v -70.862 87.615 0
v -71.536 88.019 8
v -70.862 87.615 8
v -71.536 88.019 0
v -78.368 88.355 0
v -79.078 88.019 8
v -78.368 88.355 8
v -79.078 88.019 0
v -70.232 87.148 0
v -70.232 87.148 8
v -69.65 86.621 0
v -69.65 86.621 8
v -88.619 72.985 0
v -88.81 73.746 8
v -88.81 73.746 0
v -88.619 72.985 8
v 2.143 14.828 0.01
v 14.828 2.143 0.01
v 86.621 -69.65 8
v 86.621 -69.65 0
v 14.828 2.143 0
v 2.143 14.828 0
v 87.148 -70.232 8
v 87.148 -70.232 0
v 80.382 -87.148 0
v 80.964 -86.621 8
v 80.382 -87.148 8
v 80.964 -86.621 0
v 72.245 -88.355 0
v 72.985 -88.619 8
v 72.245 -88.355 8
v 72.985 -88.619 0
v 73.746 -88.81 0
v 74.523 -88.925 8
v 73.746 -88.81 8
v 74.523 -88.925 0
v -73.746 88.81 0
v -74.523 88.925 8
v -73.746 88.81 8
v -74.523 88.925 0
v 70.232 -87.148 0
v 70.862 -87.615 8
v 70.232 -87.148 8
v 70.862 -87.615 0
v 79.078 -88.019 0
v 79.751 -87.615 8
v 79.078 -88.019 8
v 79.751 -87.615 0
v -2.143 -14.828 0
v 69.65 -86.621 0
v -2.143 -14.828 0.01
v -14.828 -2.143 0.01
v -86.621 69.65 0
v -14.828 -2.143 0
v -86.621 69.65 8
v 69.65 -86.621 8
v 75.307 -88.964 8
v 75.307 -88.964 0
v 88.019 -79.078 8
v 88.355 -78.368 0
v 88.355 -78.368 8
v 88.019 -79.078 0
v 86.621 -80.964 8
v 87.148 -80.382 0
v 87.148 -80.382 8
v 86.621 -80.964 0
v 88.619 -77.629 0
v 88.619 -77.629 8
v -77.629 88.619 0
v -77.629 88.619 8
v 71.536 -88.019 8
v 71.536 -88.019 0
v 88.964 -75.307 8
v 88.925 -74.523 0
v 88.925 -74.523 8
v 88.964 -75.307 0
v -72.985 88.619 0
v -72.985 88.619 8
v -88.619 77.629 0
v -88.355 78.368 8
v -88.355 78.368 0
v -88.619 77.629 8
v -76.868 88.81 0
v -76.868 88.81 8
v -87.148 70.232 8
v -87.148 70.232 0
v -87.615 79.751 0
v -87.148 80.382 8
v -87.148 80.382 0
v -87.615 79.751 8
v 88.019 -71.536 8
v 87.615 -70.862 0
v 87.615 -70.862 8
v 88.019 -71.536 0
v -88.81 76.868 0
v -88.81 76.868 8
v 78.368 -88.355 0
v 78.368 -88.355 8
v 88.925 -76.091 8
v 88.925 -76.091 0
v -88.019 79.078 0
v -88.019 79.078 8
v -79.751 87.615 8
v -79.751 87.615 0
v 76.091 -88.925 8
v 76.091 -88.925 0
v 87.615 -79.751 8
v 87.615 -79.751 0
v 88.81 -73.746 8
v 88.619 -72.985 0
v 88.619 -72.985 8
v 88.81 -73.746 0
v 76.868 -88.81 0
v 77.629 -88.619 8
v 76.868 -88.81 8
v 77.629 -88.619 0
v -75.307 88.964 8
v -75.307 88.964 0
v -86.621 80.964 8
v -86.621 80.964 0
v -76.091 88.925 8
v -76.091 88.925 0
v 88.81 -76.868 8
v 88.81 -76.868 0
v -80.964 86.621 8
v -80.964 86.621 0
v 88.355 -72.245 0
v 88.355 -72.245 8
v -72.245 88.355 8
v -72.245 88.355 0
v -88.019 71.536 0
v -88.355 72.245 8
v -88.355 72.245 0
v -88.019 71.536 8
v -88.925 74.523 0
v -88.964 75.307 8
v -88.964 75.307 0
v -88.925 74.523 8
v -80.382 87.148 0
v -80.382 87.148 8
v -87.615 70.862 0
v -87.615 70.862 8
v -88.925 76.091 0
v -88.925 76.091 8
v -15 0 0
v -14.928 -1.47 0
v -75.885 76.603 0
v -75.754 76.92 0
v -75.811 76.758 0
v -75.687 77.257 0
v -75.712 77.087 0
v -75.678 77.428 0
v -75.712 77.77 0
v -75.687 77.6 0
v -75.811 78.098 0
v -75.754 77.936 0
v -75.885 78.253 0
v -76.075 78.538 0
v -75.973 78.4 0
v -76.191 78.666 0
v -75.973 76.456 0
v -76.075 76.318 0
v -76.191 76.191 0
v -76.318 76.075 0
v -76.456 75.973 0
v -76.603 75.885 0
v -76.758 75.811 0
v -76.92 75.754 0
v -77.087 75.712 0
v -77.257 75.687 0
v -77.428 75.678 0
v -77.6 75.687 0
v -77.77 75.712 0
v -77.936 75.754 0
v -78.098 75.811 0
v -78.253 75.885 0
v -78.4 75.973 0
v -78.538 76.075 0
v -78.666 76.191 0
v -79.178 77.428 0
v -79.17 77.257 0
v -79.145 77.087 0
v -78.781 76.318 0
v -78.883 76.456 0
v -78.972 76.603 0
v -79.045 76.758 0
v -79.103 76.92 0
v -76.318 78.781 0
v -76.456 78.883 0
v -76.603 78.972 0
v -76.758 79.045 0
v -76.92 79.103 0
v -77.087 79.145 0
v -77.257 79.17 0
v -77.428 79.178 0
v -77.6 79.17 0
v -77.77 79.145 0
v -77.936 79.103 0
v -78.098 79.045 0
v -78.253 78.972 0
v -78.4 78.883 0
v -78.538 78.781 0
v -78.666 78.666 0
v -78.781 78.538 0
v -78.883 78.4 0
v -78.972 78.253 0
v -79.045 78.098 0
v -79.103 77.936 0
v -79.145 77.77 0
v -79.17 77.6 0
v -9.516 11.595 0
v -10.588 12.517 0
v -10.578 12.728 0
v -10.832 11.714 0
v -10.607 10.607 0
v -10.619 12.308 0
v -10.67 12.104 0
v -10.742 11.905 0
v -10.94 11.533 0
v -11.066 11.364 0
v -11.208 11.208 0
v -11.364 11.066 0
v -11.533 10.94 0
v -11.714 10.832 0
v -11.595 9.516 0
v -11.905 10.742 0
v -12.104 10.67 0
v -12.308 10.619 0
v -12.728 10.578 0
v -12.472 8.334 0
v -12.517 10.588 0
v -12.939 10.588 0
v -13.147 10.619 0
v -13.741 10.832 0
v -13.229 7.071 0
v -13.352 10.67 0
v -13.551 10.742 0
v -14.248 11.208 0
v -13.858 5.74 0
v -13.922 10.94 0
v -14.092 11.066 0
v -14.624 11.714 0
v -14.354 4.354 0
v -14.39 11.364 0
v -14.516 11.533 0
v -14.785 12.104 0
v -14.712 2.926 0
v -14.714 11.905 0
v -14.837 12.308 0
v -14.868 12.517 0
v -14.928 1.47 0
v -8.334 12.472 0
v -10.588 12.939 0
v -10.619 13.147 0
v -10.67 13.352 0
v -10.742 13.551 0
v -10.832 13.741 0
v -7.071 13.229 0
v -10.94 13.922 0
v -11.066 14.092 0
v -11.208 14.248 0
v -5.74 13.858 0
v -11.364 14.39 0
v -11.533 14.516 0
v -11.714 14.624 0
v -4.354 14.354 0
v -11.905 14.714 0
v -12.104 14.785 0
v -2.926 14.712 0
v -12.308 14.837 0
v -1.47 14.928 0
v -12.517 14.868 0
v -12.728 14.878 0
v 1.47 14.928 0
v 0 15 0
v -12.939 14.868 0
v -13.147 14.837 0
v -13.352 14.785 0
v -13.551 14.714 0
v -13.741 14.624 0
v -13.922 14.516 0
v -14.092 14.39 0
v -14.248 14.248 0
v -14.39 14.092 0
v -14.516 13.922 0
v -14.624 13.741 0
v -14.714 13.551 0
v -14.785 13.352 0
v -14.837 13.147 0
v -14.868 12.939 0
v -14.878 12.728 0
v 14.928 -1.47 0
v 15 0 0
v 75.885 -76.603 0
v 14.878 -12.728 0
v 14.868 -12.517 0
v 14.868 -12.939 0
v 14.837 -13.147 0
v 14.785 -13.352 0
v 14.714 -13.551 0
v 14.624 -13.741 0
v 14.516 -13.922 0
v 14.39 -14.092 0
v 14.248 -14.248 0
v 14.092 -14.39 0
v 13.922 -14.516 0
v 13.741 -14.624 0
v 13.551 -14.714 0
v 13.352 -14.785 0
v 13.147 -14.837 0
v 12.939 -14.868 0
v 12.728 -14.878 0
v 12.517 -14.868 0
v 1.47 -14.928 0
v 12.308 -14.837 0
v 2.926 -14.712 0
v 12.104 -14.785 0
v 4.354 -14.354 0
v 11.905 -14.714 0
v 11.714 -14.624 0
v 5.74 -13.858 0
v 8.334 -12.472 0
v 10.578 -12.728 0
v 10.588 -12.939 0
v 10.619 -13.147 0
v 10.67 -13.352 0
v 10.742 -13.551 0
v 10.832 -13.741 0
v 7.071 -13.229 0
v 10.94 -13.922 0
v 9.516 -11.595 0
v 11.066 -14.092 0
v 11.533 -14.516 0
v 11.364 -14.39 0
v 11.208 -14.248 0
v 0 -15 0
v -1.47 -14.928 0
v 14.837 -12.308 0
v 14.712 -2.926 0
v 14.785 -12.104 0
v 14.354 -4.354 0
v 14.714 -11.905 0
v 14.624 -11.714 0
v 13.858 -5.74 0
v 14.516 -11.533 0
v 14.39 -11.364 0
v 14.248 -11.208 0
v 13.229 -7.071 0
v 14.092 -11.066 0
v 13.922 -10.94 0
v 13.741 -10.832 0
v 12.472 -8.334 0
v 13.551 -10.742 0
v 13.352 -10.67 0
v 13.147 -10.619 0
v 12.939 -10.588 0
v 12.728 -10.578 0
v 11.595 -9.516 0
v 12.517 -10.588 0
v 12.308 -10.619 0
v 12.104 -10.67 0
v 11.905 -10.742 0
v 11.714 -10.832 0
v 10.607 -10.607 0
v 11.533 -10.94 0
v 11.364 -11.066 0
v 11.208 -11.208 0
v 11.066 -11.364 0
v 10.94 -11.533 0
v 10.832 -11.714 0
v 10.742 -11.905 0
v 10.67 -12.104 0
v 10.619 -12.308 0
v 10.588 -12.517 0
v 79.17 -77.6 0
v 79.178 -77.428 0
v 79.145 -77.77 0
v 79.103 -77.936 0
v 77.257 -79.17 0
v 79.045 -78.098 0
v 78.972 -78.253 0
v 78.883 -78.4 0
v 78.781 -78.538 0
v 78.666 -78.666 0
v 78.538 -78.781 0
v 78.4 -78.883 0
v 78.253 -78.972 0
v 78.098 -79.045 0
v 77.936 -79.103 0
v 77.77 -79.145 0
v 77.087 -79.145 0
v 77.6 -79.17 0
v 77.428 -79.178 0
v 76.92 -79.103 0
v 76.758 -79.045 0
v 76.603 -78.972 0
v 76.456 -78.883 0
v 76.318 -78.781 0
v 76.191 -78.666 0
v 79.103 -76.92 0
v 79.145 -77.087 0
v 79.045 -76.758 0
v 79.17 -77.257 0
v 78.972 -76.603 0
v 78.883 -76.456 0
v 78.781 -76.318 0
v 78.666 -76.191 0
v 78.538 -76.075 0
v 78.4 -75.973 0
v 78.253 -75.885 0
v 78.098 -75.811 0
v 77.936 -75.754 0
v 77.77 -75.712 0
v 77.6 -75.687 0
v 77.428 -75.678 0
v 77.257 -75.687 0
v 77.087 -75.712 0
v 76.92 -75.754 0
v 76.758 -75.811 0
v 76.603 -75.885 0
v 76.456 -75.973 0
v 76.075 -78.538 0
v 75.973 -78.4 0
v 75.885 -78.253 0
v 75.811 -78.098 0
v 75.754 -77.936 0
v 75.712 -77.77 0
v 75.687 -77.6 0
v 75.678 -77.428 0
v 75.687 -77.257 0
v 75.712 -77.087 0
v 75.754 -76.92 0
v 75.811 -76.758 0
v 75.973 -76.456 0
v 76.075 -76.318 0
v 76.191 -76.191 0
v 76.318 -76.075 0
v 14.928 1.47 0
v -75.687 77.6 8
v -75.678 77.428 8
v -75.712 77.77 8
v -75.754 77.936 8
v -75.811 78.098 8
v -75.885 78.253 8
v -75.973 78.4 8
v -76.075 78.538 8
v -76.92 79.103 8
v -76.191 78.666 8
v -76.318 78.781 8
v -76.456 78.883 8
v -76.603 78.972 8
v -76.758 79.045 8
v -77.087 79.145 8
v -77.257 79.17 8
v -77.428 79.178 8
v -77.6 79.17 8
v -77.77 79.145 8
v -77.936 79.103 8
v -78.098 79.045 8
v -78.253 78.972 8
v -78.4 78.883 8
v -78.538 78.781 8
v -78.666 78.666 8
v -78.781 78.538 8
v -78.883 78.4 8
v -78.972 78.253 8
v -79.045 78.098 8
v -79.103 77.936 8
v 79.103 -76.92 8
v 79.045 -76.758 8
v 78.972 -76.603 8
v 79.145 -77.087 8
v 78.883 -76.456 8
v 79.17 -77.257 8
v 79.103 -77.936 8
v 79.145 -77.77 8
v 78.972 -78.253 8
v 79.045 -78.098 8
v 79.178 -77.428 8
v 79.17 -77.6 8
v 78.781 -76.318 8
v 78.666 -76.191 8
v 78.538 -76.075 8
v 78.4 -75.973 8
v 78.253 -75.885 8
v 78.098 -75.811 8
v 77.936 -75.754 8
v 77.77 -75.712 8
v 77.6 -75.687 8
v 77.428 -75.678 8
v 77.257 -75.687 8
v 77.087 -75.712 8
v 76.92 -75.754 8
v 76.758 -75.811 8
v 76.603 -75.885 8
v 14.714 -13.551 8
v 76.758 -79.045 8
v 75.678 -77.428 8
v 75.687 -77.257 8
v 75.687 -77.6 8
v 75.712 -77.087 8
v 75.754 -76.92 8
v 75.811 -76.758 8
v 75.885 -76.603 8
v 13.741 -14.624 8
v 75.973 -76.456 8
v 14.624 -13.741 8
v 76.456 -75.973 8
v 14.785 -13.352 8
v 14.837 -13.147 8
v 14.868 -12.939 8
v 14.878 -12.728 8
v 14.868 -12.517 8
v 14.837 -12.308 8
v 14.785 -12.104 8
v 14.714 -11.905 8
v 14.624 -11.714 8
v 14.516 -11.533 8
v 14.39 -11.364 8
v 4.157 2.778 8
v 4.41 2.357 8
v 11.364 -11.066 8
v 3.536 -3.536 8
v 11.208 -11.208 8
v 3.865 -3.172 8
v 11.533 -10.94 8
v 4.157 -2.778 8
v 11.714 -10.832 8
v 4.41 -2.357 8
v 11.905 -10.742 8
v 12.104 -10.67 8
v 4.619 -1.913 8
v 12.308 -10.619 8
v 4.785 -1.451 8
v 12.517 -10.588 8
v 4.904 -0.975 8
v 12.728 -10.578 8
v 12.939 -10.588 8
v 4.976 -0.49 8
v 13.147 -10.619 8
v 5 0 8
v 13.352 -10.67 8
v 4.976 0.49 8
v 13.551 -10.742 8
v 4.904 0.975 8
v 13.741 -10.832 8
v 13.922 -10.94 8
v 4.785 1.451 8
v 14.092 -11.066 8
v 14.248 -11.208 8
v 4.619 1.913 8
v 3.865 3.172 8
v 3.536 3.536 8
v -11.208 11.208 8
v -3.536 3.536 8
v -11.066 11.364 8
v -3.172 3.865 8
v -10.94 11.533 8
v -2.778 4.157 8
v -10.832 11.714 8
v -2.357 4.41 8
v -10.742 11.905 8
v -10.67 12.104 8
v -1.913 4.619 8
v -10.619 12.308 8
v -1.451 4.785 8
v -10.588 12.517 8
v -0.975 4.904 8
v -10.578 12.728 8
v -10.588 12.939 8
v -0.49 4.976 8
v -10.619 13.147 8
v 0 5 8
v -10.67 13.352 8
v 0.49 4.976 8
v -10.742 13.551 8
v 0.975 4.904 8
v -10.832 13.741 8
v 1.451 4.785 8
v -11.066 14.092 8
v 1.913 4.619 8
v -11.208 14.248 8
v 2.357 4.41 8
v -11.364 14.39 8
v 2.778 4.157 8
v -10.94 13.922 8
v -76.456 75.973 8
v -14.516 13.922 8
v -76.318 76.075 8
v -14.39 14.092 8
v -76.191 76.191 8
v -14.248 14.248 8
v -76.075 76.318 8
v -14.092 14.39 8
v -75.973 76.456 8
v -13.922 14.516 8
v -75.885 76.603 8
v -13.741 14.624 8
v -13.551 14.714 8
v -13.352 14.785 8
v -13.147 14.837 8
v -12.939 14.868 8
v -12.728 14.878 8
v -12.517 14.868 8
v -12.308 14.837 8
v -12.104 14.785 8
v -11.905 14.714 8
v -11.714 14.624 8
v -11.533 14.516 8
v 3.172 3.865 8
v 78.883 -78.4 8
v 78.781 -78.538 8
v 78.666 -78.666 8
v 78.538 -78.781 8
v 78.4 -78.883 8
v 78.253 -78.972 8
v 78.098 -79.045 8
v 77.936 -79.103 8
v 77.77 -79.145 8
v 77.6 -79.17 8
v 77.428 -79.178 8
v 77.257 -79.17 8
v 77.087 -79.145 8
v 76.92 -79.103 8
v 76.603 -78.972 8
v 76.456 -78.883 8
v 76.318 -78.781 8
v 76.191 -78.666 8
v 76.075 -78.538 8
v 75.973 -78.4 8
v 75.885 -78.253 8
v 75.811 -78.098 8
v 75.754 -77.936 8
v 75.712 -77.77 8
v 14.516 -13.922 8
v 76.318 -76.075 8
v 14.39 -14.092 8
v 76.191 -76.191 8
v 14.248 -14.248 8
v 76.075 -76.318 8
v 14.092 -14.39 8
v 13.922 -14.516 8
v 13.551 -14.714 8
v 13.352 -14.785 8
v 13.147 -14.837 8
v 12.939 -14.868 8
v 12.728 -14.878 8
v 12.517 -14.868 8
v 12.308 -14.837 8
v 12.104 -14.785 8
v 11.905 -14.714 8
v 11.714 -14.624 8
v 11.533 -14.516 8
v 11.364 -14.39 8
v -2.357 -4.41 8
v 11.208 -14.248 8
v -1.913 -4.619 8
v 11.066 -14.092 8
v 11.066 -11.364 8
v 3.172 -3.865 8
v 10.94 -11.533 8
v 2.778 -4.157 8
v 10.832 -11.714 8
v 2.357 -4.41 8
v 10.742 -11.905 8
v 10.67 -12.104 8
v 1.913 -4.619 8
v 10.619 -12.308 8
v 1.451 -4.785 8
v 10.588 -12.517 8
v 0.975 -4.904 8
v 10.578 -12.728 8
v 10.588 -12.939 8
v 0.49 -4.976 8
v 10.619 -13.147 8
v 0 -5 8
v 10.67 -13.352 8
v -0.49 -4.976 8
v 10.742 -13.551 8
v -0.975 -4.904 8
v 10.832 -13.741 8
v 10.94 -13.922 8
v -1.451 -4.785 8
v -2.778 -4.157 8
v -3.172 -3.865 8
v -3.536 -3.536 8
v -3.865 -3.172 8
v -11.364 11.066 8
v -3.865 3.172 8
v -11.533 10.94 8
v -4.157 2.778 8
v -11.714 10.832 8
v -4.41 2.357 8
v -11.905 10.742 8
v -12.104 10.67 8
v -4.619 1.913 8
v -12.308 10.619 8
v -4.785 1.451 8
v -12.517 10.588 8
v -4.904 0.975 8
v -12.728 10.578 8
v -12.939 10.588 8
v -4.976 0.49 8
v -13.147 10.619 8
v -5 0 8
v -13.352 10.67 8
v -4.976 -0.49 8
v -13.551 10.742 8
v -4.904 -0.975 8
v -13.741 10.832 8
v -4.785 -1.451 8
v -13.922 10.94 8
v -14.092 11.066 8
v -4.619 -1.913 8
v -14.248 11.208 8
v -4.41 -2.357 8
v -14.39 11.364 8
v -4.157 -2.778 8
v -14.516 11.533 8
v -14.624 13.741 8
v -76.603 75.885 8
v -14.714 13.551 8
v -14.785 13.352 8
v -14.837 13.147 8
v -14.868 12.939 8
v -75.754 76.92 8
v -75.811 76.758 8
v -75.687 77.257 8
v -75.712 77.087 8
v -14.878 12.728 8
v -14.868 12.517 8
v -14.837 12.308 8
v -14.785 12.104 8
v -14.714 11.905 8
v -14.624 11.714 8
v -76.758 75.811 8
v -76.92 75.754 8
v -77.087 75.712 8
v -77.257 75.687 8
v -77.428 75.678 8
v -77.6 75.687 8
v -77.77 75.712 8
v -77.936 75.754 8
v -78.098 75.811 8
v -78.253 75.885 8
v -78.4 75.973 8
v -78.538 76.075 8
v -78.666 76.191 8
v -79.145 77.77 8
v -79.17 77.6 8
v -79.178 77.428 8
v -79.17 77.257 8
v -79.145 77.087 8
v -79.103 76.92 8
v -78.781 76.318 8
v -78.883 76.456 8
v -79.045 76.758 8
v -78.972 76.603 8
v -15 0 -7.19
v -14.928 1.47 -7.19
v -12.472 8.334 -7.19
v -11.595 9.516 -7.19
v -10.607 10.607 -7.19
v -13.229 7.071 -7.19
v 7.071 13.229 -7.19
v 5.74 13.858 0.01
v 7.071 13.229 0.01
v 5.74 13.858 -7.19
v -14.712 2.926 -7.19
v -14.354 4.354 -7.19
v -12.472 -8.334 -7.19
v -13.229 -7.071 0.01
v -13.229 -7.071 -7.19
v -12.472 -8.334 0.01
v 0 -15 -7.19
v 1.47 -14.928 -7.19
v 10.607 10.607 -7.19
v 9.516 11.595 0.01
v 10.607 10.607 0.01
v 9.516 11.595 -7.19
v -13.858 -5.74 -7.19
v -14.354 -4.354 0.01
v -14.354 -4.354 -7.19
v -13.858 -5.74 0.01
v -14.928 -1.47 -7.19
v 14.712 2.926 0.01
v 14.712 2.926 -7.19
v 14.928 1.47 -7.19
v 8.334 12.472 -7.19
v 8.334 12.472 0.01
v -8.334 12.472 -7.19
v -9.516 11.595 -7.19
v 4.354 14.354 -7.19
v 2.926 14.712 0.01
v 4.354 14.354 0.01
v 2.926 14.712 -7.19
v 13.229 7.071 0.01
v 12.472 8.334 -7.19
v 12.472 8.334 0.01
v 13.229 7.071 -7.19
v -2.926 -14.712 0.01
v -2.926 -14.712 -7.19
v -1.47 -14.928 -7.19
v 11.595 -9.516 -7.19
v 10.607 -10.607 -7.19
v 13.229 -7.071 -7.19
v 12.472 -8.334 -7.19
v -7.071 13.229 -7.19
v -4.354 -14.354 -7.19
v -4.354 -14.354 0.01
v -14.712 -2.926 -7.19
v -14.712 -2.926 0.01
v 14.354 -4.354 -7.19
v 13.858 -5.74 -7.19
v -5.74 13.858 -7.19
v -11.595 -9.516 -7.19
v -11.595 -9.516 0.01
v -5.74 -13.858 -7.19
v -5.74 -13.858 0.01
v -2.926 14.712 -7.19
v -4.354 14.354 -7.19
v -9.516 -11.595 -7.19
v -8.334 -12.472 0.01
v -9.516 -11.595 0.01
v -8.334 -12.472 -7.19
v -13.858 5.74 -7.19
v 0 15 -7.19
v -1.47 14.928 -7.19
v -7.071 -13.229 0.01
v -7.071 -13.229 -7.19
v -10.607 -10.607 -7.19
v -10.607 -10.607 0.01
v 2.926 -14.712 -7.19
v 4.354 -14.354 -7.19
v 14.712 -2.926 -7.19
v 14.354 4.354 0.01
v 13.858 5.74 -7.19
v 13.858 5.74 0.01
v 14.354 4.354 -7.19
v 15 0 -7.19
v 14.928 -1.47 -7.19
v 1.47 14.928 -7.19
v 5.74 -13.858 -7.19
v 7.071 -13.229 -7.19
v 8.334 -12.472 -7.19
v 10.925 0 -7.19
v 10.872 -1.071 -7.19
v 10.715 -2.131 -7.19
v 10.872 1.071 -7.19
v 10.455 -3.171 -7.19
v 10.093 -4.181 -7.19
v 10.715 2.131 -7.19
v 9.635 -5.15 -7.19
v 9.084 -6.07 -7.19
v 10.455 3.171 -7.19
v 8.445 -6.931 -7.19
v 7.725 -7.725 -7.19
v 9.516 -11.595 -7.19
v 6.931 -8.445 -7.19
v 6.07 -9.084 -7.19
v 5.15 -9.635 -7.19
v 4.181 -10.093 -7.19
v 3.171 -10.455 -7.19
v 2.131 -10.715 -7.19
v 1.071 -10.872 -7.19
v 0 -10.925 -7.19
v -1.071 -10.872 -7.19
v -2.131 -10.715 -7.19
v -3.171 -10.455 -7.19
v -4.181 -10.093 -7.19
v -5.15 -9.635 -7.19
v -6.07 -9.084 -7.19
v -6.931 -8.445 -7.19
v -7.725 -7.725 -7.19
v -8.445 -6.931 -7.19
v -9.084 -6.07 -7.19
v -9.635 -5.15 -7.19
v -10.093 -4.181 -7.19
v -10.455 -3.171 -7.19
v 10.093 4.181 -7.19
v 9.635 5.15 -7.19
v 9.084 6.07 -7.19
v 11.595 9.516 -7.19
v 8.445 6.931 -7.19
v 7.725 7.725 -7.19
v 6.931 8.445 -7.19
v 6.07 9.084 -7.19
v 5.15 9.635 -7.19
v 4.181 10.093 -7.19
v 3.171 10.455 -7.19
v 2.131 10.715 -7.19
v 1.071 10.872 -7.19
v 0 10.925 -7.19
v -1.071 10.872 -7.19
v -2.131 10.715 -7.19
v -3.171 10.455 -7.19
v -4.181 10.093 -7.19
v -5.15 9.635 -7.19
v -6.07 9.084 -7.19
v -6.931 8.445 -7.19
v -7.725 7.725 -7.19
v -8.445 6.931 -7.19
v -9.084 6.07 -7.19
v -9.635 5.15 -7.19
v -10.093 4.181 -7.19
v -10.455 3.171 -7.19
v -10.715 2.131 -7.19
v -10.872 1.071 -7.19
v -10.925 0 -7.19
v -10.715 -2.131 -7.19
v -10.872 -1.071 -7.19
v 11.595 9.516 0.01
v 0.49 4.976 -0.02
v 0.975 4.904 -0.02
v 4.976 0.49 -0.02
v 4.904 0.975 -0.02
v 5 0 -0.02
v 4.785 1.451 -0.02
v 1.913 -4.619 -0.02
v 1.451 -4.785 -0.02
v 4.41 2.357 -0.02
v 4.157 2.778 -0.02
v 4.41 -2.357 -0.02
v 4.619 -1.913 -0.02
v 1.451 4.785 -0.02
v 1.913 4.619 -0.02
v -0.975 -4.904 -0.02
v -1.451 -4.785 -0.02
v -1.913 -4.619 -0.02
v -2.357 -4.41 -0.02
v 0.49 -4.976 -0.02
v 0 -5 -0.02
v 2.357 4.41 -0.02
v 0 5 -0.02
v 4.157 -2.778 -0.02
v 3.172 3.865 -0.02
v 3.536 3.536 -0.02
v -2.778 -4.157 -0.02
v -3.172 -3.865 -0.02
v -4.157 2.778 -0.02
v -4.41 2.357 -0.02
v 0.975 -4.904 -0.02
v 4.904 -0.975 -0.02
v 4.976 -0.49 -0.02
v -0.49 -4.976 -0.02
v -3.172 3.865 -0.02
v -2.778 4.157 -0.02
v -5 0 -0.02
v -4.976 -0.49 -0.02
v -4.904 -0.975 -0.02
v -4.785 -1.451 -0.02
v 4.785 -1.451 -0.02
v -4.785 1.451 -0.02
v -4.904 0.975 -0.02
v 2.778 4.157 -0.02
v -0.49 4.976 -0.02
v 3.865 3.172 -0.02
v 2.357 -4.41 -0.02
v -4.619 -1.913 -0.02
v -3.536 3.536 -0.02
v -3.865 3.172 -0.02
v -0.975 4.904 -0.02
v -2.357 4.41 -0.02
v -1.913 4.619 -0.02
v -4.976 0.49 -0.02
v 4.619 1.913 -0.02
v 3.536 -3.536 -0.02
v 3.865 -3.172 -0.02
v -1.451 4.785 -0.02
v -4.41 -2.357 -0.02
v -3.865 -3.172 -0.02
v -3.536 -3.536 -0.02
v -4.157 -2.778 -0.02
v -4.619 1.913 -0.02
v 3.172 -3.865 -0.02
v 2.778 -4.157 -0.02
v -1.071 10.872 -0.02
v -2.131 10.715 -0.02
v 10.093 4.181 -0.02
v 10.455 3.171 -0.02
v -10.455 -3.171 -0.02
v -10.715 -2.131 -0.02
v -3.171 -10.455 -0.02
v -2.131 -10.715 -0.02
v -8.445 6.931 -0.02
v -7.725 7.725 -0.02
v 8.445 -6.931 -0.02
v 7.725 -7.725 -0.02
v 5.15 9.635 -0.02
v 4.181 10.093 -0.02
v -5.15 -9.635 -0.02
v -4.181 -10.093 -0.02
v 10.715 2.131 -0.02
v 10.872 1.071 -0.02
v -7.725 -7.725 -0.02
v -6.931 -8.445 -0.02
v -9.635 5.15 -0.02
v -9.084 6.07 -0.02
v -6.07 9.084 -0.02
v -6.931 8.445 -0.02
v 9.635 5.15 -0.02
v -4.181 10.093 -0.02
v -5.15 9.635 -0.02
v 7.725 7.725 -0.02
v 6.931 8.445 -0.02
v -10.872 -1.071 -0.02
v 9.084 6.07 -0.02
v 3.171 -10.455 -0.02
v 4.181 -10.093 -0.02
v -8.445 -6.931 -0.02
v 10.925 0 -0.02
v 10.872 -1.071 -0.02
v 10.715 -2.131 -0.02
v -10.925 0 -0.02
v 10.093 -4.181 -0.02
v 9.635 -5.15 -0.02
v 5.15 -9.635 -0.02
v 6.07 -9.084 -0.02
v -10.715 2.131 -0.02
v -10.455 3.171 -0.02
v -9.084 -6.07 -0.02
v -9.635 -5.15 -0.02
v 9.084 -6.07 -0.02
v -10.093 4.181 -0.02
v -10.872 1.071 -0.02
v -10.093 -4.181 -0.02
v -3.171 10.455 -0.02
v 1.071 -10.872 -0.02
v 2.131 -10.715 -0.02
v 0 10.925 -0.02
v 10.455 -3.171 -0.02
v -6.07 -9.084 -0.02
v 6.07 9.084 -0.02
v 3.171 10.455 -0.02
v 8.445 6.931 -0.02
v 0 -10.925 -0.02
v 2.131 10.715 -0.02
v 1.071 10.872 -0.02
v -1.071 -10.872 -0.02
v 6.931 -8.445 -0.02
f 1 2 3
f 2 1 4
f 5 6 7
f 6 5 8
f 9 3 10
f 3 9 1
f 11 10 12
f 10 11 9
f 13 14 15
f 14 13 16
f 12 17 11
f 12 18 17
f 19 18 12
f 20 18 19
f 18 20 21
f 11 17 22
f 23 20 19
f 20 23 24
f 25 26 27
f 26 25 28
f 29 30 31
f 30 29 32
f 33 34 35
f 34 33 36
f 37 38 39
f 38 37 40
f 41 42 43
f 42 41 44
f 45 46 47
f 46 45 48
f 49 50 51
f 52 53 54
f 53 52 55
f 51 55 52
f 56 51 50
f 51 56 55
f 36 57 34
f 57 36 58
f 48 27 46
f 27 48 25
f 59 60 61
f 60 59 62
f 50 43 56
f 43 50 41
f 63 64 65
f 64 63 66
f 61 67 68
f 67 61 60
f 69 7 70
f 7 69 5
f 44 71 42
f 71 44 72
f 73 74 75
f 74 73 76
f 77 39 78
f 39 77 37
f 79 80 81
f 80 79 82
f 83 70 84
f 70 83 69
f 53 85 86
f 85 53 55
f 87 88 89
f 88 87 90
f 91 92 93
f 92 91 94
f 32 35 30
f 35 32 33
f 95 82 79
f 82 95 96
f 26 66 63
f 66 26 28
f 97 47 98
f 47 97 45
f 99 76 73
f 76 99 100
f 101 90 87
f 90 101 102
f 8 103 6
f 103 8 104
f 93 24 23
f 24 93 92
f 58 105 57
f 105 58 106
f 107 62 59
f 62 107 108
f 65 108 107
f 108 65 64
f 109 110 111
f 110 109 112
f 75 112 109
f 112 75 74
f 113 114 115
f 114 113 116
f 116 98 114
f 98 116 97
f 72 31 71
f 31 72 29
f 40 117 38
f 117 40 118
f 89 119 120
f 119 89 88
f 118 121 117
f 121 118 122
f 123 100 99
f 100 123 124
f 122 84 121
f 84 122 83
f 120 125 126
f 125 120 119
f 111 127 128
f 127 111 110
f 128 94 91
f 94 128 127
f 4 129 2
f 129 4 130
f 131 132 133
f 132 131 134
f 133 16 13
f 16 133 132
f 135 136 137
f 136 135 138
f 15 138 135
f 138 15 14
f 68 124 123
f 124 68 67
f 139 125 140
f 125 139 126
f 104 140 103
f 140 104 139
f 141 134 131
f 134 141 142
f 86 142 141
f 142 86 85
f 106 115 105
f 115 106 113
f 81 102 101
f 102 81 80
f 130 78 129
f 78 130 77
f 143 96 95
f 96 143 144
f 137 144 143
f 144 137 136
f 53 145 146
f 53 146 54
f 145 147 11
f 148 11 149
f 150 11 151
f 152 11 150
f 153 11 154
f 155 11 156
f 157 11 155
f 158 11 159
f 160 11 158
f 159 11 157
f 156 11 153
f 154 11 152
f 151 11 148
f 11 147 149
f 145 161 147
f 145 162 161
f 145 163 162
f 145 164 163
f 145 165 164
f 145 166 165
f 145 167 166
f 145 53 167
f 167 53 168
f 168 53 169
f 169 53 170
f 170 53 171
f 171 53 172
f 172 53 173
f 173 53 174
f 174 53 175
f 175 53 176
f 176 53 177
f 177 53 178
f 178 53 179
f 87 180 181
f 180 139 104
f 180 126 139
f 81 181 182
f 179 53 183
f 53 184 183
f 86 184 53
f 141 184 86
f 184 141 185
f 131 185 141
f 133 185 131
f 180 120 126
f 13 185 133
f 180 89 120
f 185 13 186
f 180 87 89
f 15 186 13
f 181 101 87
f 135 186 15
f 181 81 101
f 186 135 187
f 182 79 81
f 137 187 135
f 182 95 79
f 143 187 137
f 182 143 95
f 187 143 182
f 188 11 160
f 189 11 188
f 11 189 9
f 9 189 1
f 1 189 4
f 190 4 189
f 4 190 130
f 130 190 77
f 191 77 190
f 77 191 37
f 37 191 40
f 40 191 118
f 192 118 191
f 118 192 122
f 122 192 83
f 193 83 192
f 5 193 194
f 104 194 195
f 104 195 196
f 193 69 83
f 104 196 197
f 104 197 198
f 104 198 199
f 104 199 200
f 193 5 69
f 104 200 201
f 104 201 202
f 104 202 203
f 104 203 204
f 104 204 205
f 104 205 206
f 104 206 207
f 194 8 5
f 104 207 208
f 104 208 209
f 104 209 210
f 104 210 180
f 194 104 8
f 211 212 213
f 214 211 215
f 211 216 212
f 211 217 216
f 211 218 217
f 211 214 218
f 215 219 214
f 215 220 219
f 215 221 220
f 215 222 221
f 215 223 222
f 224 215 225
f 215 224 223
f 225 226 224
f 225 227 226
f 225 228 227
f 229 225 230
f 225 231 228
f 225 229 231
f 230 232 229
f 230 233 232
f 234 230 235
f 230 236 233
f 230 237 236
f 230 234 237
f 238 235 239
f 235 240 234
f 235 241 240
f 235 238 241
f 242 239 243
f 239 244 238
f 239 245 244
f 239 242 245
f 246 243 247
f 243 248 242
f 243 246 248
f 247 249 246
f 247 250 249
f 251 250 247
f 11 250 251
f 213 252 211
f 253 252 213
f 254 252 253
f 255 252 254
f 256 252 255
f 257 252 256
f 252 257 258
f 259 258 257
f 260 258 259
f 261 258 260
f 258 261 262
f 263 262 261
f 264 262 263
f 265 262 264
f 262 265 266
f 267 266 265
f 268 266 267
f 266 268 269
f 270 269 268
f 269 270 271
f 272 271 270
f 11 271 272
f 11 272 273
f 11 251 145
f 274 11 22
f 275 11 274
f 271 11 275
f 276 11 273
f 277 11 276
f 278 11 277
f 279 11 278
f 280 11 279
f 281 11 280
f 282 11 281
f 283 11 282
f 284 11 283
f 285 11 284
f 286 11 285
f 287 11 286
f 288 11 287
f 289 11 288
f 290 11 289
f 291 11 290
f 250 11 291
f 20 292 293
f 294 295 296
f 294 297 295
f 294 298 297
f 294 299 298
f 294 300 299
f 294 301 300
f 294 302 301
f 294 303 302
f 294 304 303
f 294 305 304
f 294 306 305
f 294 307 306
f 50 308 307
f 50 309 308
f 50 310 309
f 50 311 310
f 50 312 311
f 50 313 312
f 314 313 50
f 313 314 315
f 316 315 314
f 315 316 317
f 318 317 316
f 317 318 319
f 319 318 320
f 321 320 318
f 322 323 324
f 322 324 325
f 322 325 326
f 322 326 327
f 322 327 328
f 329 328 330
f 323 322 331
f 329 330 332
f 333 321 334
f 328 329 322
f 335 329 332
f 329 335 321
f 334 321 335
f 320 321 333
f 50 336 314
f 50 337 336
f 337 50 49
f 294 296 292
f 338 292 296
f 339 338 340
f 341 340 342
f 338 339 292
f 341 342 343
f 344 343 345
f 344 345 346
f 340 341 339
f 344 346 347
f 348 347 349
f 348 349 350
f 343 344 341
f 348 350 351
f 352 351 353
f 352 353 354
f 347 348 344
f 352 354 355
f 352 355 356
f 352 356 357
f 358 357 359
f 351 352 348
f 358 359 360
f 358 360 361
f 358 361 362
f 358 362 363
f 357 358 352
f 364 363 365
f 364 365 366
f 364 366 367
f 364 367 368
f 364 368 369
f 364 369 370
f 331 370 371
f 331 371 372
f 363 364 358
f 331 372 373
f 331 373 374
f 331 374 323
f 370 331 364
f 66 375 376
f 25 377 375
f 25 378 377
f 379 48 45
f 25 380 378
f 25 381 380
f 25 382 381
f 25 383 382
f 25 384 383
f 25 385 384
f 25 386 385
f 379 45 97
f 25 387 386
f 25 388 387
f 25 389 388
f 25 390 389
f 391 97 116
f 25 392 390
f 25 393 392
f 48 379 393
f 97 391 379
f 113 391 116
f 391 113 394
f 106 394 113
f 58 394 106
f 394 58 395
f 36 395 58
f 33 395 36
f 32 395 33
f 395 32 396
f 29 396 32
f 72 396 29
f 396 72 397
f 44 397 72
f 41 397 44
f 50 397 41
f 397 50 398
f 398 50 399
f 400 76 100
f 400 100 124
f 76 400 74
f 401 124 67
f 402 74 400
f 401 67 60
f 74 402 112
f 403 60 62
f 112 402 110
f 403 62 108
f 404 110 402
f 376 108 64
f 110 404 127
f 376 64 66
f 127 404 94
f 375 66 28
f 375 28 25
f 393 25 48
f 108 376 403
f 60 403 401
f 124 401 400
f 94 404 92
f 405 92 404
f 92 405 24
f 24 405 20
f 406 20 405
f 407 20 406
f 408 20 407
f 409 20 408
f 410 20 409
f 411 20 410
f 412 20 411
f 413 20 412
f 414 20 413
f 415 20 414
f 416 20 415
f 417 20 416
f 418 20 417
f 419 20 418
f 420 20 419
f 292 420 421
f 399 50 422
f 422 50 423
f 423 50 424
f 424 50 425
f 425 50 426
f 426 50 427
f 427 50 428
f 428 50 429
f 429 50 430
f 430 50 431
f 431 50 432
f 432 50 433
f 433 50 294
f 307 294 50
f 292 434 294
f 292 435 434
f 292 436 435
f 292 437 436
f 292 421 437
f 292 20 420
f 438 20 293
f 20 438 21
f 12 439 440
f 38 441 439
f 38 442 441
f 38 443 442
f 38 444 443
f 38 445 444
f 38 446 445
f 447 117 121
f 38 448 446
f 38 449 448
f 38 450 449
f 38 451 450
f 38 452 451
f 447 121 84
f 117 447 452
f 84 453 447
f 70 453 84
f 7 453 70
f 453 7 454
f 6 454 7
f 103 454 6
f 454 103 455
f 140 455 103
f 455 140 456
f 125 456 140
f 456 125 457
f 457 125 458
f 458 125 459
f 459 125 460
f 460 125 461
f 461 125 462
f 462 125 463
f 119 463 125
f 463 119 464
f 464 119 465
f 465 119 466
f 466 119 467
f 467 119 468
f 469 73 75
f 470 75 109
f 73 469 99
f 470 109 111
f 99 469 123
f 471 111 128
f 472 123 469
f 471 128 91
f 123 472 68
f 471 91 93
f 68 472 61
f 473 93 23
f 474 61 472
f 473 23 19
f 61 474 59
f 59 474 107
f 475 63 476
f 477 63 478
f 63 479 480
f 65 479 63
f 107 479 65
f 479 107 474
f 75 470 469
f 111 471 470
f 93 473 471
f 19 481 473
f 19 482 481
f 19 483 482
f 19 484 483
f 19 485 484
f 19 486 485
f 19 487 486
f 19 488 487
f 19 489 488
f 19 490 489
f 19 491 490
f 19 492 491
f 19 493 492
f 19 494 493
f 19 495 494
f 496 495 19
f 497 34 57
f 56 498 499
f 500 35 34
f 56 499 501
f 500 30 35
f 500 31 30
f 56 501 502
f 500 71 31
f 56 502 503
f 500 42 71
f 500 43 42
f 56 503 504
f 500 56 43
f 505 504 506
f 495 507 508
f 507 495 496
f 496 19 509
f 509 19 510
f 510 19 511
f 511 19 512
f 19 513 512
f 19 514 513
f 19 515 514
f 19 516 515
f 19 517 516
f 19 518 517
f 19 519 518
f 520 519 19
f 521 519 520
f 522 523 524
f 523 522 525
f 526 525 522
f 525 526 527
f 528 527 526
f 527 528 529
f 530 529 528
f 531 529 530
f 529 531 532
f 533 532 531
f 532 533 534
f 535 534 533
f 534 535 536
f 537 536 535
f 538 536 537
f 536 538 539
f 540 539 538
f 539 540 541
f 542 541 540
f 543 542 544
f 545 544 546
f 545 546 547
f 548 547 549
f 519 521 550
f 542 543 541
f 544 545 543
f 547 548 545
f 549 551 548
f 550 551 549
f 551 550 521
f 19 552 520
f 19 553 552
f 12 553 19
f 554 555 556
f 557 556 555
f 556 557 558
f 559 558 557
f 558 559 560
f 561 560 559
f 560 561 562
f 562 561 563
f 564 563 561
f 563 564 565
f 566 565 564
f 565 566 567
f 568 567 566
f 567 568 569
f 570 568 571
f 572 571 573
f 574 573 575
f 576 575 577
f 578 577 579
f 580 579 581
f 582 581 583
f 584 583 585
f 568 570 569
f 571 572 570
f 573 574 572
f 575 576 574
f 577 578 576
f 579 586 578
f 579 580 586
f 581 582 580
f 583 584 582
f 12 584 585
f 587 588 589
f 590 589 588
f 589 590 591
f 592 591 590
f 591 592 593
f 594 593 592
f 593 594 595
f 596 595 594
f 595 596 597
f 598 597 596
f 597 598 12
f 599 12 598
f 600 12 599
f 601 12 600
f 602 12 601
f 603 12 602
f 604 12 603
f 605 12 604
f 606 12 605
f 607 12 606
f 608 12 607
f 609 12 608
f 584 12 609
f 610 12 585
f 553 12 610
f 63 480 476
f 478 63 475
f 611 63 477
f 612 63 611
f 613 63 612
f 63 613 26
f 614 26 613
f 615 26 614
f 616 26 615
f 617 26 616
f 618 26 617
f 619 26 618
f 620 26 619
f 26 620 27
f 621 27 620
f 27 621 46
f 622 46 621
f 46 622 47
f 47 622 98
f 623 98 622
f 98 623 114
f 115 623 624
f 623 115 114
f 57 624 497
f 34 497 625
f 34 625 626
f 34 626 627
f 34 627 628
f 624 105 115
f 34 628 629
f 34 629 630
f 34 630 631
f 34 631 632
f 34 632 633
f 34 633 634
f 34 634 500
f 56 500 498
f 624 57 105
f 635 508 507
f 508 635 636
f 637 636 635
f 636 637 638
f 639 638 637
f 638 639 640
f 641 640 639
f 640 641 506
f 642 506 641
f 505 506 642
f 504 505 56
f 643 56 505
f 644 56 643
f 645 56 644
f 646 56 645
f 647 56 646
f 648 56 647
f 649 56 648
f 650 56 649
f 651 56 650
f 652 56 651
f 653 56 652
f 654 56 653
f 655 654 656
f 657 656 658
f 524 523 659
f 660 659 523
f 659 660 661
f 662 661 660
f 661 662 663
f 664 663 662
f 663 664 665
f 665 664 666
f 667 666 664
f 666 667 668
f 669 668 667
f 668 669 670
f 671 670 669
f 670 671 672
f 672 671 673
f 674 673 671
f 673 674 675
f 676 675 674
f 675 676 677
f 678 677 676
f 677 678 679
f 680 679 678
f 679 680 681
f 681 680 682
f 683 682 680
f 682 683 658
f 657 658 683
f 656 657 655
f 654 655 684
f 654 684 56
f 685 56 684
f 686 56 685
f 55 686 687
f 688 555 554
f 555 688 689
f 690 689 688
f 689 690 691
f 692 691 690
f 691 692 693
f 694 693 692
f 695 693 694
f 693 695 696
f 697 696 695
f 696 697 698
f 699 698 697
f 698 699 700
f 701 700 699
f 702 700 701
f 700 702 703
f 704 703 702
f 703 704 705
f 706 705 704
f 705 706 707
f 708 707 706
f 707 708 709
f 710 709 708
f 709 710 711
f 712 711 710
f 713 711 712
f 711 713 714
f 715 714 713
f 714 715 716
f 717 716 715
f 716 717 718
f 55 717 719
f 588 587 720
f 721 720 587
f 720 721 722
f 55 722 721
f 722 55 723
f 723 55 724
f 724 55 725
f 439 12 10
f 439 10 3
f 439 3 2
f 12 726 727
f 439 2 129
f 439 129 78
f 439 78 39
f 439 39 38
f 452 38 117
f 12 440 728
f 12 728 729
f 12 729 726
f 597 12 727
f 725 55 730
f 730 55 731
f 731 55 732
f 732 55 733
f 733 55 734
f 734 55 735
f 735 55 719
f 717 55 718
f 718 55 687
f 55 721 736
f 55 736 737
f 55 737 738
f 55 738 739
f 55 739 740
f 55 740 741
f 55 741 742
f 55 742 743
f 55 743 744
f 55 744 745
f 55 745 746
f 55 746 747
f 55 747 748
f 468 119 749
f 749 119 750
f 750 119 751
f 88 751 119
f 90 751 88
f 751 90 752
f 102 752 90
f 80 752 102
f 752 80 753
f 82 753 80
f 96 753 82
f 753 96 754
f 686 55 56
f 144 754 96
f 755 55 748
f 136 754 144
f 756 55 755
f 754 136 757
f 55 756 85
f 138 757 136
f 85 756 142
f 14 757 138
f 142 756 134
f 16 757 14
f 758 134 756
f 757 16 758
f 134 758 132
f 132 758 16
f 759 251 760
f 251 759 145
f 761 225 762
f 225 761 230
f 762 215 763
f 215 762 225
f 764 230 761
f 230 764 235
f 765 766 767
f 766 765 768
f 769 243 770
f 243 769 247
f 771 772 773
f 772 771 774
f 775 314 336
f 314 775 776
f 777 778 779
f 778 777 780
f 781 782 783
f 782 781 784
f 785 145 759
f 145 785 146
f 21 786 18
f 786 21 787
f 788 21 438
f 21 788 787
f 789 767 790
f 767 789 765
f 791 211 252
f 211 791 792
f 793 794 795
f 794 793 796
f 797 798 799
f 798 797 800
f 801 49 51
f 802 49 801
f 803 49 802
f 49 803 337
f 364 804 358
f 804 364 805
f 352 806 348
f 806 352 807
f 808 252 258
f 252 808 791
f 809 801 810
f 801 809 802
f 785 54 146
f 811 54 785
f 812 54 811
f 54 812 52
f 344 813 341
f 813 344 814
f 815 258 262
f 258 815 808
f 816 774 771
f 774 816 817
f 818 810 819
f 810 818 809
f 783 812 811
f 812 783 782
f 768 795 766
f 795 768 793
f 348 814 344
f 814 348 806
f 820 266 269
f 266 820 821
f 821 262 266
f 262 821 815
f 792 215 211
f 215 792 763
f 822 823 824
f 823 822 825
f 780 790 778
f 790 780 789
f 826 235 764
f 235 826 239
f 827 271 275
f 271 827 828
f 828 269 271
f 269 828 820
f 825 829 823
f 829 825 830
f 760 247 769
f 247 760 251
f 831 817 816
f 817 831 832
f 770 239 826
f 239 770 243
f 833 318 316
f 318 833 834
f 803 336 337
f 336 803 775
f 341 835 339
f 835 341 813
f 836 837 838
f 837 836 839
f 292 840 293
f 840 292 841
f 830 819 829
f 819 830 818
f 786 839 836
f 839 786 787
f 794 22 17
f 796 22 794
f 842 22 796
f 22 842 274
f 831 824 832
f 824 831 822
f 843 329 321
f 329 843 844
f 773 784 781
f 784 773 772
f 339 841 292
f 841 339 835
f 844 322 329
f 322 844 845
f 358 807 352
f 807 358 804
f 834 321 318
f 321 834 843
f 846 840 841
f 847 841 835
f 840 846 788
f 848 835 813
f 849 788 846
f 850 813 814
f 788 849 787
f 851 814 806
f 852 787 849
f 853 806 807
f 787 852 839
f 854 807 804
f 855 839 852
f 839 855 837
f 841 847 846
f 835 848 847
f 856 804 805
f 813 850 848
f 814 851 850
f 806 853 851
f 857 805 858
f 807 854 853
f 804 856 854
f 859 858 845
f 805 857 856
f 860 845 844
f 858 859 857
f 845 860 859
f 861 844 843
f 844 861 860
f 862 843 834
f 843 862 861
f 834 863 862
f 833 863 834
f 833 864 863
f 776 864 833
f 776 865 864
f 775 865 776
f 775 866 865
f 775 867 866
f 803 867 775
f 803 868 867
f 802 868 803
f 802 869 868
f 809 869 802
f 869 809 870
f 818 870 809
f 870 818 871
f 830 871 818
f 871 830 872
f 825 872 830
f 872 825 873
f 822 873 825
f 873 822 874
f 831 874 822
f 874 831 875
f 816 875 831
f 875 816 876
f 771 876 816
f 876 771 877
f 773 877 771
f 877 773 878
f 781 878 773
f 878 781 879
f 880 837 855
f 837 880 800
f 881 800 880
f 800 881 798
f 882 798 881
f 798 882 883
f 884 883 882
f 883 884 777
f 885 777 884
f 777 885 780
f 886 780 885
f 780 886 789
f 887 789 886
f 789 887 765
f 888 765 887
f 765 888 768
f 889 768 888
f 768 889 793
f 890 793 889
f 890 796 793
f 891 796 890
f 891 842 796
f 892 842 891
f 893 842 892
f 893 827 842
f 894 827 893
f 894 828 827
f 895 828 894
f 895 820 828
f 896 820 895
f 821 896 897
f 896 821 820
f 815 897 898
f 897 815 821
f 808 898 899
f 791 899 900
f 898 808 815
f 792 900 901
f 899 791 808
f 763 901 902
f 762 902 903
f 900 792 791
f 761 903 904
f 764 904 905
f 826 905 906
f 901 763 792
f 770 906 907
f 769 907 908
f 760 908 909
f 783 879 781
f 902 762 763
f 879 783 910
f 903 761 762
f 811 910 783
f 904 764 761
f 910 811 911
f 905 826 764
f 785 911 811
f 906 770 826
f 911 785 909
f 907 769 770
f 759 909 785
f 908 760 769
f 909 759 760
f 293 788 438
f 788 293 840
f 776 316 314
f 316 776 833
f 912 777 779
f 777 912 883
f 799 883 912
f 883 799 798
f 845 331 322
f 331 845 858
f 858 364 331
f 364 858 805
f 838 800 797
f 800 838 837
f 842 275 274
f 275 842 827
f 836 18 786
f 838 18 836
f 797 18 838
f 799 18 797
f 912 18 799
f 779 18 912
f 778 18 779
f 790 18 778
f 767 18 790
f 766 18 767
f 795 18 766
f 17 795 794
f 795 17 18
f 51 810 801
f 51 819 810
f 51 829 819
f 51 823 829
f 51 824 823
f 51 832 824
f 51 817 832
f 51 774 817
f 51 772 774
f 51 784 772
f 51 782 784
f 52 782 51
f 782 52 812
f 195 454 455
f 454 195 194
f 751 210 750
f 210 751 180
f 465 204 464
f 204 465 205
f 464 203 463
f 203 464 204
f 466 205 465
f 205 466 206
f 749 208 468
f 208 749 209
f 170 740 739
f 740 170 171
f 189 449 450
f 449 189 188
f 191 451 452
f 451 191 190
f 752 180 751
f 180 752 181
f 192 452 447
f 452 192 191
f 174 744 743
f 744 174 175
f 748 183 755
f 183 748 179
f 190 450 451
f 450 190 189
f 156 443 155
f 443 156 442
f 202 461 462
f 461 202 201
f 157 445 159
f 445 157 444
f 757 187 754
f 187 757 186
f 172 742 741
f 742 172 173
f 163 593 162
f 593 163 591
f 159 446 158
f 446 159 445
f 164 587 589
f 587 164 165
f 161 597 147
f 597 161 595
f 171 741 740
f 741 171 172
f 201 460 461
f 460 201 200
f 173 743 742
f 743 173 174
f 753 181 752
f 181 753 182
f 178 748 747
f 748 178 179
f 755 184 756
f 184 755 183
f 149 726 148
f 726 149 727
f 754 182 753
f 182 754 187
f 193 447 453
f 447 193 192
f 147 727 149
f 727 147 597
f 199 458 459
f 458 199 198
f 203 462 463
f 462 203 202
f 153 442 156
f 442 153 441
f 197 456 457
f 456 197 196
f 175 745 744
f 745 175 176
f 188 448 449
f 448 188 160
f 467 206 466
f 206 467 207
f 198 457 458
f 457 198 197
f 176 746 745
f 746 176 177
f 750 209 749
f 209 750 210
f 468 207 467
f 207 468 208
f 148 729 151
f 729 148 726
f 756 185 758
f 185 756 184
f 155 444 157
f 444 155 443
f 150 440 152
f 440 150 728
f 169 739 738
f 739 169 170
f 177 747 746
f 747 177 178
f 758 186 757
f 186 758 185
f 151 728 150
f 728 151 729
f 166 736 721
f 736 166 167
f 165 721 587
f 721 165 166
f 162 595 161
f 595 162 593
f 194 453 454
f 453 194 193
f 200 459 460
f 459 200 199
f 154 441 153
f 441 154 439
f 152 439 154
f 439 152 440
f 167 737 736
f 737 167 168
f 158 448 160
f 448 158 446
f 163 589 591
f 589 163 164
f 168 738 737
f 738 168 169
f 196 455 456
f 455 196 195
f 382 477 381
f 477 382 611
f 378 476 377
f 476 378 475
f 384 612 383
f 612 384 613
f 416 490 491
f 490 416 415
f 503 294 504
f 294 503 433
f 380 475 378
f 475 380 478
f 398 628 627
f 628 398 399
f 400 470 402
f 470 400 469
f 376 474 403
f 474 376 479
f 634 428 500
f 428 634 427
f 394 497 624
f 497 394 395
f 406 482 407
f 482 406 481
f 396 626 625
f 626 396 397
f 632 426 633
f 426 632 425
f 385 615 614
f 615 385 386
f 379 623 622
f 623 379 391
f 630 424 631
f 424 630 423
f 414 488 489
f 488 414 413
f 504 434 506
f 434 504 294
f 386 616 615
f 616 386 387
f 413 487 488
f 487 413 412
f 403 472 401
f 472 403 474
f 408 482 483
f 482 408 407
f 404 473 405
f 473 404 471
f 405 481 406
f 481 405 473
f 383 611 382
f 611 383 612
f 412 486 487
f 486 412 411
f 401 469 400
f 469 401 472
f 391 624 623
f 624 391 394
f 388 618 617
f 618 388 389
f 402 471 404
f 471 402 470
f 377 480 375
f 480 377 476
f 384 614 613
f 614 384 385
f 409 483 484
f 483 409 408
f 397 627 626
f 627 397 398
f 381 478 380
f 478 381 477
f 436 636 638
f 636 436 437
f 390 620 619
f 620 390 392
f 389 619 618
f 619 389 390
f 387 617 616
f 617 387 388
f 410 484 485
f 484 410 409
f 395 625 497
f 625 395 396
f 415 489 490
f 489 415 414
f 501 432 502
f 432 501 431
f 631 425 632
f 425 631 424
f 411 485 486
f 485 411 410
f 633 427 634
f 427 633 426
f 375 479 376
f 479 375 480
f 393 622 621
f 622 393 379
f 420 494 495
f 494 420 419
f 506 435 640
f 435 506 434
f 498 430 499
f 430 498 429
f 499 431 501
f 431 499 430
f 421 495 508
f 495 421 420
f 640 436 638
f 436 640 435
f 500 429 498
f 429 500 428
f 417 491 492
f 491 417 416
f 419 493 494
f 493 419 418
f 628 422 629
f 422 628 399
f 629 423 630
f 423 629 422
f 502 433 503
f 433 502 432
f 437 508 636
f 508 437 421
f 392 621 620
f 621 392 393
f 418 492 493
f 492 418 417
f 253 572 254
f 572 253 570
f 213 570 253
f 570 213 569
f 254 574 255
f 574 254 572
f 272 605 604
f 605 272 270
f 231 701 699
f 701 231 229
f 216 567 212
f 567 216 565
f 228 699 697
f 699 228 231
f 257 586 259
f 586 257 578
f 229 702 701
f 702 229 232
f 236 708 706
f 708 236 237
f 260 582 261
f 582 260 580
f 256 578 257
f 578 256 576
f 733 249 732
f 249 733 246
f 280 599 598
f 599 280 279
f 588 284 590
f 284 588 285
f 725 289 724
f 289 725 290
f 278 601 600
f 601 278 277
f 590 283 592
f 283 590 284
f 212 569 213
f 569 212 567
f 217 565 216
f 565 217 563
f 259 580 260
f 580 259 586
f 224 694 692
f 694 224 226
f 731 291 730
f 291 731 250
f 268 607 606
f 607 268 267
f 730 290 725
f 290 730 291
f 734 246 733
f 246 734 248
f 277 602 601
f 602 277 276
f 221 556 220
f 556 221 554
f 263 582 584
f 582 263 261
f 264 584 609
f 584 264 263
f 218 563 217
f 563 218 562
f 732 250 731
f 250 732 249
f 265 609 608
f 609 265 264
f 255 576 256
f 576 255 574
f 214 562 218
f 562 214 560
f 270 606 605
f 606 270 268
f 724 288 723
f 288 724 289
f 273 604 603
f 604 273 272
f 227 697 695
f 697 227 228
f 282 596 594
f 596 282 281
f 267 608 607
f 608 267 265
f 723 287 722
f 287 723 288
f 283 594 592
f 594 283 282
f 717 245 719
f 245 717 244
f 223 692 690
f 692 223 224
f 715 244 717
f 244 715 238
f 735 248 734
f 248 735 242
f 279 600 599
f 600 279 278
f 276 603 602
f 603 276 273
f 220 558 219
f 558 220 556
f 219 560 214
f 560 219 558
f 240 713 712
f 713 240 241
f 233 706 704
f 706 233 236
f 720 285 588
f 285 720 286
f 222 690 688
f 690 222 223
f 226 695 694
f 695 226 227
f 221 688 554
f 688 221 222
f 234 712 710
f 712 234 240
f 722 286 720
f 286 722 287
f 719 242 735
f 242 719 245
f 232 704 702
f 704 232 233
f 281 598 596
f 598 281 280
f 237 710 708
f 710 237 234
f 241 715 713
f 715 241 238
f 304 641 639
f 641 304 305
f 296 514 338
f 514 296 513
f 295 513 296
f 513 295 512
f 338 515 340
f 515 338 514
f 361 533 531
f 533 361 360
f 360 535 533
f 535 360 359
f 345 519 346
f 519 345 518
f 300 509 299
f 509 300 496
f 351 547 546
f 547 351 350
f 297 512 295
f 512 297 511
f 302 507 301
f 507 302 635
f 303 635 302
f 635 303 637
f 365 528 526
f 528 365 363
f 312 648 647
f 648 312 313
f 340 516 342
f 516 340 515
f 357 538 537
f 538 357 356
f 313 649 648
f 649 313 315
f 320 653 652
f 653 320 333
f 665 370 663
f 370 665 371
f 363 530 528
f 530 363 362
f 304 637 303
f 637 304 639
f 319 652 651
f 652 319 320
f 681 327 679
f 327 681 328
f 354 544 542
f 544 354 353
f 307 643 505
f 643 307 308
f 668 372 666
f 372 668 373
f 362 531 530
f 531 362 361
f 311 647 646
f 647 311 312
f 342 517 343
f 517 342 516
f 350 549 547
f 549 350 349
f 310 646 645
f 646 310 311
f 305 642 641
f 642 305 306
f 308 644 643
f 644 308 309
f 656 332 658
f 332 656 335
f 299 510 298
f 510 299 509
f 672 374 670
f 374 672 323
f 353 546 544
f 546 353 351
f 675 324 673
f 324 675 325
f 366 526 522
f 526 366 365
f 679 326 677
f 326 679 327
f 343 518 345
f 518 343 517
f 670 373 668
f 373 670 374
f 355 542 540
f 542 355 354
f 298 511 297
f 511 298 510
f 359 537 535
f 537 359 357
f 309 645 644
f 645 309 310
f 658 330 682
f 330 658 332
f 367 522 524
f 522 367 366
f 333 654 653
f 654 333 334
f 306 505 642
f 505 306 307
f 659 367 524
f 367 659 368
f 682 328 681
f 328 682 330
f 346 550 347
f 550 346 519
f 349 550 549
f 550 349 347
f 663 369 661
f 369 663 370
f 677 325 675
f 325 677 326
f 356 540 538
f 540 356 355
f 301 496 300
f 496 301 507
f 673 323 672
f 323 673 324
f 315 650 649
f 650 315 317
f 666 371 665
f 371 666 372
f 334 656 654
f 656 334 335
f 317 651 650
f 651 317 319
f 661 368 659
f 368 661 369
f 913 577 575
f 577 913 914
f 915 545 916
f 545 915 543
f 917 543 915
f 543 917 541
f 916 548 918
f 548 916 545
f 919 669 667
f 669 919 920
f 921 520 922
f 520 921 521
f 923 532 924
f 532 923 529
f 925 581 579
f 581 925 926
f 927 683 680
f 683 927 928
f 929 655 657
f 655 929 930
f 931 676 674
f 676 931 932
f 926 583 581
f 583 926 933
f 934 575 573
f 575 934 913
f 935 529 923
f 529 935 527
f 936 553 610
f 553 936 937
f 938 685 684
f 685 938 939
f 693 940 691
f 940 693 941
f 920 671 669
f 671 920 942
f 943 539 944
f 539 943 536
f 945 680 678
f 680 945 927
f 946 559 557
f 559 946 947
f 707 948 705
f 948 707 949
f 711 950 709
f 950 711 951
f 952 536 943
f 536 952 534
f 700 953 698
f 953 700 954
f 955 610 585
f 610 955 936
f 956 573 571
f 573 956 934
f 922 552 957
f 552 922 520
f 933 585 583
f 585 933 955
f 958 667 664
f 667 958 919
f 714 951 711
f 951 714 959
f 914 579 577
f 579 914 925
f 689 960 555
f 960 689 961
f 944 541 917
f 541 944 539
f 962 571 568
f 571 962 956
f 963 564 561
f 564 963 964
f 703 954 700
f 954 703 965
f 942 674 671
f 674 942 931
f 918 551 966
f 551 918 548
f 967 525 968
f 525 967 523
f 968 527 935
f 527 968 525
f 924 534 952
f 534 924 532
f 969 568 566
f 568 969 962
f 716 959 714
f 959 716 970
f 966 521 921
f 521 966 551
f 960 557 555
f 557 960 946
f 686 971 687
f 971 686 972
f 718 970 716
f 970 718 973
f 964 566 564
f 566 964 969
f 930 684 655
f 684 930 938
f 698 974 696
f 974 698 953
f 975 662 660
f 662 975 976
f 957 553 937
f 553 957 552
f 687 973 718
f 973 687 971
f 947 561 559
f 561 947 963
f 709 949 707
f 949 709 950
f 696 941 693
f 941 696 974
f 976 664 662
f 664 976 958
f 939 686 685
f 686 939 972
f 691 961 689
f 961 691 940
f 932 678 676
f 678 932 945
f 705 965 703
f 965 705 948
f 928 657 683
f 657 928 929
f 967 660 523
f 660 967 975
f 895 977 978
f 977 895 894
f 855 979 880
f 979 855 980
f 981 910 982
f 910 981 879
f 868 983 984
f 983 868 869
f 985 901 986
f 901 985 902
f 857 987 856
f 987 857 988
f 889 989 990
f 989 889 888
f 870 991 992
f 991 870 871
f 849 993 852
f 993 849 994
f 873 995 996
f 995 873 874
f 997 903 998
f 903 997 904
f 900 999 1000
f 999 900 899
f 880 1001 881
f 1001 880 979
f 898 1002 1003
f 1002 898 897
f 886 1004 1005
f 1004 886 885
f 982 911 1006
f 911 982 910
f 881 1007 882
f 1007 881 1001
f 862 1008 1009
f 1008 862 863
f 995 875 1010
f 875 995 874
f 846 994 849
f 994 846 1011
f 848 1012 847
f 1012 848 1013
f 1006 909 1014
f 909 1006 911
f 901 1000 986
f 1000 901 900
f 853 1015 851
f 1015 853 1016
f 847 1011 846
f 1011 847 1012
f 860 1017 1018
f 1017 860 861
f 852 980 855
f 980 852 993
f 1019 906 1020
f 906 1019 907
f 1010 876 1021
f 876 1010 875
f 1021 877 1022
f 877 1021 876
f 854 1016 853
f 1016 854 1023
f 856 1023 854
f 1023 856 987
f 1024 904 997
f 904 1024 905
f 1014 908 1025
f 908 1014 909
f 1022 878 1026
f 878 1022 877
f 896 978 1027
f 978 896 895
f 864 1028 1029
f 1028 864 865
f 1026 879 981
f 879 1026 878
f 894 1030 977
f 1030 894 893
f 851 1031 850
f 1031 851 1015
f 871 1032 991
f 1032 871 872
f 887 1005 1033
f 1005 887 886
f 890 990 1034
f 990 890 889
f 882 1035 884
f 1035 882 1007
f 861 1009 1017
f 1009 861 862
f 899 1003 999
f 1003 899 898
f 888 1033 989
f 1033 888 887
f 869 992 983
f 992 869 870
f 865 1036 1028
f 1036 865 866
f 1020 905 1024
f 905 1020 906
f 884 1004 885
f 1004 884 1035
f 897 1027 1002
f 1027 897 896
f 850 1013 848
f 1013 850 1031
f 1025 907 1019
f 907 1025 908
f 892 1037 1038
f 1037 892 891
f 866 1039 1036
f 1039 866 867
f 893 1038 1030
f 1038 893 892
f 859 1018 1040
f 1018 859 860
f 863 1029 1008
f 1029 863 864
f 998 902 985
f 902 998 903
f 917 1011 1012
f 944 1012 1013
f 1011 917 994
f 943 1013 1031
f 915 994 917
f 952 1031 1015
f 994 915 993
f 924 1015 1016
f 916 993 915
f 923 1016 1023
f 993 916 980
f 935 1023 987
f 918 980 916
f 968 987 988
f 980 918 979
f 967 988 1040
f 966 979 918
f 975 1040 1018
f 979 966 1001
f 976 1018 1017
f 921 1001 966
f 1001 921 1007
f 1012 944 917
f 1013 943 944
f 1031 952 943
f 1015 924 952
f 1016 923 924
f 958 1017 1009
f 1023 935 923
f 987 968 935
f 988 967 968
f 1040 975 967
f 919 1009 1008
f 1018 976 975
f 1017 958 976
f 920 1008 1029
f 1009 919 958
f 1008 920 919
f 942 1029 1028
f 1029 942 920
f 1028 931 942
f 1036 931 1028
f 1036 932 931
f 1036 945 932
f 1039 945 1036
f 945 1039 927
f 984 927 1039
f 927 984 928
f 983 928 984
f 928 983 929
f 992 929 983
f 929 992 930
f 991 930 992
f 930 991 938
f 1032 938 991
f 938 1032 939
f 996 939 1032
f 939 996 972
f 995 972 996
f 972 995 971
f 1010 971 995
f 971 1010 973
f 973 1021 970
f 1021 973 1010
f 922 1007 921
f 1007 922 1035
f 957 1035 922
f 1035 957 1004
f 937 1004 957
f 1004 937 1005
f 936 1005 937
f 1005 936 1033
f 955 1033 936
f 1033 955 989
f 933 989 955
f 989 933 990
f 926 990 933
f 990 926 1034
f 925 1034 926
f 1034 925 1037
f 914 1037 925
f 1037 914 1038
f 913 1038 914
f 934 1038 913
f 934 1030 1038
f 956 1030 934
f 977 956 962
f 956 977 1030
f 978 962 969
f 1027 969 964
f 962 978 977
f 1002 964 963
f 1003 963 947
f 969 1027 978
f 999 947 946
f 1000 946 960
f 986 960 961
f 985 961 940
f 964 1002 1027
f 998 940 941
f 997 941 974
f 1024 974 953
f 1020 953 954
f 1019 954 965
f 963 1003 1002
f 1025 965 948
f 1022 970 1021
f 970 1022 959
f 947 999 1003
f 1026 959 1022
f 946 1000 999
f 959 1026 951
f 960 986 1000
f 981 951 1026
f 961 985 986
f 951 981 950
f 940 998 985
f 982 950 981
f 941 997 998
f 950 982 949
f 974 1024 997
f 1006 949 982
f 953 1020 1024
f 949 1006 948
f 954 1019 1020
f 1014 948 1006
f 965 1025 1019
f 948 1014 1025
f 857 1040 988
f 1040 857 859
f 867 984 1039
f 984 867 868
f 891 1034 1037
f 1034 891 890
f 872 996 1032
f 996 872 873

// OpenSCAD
// Gen-CT — rear BEARING BRIDGE (bar endbell, 2026-10-10): a 608 boss on a 24 mm wide bar that spans the
// two frame rods at 135 deg and 135+180 deg (R = flange_bolt_r). The front bridge uses the rods at 45/225 deg, the rear
// bridge the rods at 135/315 deg, so the two bridges cross at 90 deg and the stator is held at 4 points.
// A bar instead of a full disc is what lets this big-ring kit fit ONE 410 mm plate. Print flat face DOWN (boss up, no supports).
// Brace holes (temporary M4 jack rods, R = brace_r) sit on the bar axis.
include <parameters.scad>;
$fn = 64;
bar_w = 24;
bar_len = 2 * (flange_bolt_r + 9);
module bar_2d() { offset(r=8) offset(delta=-8) square([bar_len, bar_w], center=true); }
difference() {
    rotate([0, 0, 135]) union() {
        linear_extrude(endbell_thick) bar_2d();
        translate([0, 0, -bearing_h + 0.01]) cylinder(d=30, h=bearing_h);
    }
    translate([0, 0, -bearing_h - 0.1]) cylinder(d=endbell_shaft_clear, h=50);
    translate([0, 0, -bearing_h - 0.02]) cylinder(d=bearing_d, h=bearing_h);
    for (s = [0, 180]) rotate([0, 0, 135 + s]) translate([flange_bolt_r, 0, -20]) cylinder(d=m3_clear, h=60);
    for (a = brace_angles) translate([brace_r*cos(a), brace_r*sin(a), -20]) cylinder(d=brace_d, h=50);
}
